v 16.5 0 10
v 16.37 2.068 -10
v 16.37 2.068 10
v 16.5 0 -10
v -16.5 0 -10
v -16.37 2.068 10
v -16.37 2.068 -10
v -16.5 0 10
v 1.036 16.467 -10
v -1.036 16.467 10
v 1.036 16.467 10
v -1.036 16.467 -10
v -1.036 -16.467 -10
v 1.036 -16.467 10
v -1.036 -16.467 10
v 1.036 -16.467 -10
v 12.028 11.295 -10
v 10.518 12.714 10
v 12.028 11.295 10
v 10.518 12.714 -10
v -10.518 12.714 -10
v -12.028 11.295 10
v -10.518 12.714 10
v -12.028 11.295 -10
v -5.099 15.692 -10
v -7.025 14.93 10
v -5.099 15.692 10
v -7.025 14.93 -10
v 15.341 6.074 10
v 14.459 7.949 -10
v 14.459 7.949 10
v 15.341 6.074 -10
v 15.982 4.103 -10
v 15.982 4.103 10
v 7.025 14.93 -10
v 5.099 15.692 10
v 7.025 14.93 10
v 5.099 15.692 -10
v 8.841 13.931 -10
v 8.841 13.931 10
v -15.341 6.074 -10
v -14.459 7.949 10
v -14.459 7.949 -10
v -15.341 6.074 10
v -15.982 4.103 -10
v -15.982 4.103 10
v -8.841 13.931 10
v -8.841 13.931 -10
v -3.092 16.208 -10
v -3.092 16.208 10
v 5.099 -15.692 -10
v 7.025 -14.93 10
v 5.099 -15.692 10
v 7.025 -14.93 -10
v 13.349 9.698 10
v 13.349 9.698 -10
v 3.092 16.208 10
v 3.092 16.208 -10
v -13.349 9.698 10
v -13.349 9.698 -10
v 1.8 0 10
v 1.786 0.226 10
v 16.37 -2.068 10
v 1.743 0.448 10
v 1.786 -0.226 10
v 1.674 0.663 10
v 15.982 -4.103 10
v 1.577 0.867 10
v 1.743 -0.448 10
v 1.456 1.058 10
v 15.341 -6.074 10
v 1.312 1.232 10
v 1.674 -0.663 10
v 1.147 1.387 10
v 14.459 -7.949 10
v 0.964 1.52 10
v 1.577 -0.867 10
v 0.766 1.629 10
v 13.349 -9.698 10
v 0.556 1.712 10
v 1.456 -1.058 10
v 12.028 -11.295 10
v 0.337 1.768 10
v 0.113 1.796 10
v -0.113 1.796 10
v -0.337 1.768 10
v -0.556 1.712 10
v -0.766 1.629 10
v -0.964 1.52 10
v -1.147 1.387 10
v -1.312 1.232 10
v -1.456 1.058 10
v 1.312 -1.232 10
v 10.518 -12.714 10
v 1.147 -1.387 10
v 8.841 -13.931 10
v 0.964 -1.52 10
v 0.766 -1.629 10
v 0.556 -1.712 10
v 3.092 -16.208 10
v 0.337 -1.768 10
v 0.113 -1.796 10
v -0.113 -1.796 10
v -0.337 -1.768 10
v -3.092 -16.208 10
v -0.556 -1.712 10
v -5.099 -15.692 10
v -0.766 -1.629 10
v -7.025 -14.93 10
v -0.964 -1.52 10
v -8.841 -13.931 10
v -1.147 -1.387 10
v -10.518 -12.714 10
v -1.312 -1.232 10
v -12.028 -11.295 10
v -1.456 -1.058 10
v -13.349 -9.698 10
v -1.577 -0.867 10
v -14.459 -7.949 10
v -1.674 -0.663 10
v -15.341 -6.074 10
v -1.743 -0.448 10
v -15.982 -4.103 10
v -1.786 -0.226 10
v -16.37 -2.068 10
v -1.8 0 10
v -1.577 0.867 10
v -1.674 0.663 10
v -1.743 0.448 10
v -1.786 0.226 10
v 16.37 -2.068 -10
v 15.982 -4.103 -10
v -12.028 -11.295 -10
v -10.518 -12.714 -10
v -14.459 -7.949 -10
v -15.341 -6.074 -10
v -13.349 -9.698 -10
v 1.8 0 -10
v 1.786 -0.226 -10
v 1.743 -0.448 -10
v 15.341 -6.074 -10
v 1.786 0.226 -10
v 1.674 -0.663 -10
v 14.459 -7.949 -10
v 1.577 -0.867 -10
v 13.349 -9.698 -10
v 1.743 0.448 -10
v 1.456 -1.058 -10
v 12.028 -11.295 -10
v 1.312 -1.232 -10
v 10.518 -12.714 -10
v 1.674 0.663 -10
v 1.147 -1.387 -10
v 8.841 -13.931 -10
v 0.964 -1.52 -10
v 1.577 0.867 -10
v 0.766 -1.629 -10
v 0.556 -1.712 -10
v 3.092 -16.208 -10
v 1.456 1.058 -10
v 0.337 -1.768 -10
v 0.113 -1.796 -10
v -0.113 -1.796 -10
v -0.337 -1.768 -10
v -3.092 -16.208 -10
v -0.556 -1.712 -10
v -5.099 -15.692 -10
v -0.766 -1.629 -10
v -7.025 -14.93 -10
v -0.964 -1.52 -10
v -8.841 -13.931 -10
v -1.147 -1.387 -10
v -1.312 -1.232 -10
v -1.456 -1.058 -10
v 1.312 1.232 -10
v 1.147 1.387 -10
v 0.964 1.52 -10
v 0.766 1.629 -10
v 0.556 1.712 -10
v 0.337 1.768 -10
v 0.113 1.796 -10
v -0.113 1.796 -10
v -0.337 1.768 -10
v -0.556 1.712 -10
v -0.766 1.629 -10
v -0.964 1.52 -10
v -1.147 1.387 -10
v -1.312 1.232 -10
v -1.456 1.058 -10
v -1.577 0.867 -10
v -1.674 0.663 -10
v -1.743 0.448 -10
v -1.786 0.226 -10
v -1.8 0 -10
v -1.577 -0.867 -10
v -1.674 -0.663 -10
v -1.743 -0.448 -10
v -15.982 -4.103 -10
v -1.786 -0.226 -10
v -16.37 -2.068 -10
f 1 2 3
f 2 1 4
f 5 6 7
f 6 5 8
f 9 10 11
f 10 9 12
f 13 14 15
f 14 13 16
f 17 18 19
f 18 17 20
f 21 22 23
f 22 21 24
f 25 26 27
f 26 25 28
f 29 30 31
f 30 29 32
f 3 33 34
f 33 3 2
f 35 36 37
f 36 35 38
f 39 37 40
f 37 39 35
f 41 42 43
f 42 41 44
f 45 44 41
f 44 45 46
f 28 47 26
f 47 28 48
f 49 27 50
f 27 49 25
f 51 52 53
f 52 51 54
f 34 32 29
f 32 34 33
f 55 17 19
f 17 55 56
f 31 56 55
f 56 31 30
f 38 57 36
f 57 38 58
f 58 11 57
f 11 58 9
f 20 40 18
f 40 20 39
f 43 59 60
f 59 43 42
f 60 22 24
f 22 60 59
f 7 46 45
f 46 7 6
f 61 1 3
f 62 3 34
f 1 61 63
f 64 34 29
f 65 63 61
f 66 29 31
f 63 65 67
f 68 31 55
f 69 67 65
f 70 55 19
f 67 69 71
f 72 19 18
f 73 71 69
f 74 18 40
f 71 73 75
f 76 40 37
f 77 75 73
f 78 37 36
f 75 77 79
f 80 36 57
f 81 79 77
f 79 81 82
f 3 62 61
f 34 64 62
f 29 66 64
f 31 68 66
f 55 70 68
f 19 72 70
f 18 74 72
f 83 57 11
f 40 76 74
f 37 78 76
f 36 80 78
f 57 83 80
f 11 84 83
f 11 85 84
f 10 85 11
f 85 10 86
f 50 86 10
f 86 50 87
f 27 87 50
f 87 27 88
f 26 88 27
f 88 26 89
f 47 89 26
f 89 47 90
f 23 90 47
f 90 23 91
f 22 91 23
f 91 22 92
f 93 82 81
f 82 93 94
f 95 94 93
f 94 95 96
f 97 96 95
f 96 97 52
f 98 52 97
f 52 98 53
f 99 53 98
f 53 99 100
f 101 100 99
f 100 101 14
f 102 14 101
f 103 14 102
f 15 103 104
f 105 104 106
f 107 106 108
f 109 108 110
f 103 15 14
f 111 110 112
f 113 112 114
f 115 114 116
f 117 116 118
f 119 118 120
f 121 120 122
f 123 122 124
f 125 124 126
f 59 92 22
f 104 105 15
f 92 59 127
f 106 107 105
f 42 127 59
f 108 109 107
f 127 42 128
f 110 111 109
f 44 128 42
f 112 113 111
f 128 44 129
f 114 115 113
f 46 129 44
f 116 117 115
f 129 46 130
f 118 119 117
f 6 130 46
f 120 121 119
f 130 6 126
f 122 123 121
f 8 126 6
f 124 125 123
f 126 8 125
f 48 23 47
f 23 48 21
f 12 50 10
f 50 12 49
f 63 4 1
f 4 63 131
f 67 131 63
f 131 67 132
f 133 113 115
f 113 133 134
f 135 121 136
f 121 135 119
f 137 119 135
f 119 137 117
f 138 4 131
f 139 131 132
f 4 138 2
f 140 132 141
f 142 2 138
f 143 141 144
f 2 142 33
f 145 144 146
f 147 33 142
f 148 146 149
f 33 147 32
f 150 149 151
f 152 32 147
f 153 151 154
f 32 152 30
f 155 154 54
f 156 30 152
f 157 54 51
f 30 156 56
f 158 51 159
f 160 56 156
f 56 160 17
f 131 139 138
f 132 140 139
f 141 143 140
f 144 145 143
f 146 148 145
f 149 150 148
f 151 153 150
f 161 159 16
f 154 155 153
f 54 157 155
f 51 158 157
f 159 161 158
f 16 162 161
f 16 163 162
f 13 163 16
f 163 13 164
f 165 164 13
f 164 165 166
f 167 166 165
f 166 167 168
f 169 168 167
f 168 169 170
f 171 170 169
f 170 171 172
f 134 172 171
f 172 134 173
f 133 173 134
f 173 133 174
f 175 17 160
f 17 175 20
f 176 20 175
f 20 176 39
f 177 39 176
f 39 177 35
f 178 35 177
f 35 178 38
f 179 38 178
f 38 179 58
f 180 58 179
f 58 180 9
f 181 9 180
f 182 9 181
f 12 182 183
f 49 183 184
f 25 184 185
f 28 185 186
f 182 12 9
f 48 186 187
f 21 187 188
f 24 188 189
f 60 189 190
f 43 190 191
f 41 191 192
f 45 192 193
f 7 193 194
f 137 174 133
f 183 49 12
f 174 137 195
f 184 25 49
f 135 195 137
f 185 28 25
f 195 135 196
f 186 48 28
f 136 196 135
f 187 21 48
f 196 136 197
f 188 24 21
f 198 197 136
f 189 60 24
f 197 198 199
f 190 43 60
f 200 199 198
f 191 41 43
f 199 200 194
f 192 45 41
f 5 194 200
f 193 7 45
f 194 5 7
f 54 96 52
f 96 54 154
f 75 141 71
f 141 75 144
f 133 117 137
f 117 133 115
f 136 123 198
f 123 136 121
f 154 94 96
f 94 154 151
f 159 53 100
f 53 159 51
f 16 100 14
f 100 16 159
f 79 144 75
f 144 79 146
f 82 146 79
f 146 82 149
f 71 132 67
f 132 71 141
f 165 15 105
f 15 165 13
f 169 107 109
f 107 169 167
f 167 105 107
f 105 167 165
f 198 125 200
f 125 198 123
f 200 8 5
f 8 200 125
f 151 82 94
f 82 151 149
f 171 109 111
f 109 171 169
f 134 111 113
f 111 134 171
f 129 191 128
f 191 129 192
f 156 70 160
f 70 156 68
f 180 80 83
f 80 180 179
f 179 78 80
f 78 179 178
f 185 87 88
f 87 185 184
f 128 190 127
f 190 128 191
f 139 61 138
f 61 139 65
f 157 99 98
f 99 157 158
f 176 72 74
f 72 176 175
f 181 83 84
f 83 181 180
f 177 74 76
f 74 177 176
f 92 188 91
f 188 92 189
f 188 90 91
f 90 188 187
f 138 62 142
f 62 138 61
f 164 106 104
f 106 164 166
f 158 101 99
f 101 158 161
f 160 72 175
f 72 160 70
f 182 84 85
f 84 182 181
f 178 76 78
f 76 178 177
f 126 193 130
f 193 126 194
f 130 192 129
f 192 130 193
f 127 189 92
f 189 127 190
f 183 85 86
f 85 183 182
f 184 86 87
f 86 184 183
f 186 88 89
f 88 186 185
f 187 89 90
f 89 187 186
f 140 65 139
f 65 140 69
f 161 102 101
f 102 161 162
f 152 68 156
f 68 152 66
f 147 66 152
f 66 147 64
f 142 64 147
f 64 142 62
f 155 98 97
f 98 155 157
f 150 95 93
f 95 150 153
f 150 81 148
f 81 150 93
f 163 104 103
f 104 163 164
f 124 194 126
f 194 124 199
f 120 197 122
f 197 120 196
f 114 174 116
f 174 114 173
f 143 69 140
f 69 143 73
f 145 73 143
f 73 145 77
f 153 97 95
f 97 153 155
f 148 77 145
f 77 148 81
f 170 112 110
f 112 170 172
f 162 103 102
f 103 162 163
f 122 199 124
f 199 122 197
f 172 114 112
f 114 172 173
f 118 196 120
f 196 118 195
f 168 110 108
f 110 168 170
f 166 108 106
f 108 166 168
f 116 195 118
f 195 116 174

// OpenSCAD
$fn = 50;


difference() {
	union() {
		translate(v = [0, 0, -10.0000000000]) {
			cylinder(h = 20, r = 16.5000000000);
		}
	}
	union() {
		translate(v = [0, 0, -100.0000000000]) {
			cylinder(h = 200, r = 1.8000000000);
		}
	}
}
